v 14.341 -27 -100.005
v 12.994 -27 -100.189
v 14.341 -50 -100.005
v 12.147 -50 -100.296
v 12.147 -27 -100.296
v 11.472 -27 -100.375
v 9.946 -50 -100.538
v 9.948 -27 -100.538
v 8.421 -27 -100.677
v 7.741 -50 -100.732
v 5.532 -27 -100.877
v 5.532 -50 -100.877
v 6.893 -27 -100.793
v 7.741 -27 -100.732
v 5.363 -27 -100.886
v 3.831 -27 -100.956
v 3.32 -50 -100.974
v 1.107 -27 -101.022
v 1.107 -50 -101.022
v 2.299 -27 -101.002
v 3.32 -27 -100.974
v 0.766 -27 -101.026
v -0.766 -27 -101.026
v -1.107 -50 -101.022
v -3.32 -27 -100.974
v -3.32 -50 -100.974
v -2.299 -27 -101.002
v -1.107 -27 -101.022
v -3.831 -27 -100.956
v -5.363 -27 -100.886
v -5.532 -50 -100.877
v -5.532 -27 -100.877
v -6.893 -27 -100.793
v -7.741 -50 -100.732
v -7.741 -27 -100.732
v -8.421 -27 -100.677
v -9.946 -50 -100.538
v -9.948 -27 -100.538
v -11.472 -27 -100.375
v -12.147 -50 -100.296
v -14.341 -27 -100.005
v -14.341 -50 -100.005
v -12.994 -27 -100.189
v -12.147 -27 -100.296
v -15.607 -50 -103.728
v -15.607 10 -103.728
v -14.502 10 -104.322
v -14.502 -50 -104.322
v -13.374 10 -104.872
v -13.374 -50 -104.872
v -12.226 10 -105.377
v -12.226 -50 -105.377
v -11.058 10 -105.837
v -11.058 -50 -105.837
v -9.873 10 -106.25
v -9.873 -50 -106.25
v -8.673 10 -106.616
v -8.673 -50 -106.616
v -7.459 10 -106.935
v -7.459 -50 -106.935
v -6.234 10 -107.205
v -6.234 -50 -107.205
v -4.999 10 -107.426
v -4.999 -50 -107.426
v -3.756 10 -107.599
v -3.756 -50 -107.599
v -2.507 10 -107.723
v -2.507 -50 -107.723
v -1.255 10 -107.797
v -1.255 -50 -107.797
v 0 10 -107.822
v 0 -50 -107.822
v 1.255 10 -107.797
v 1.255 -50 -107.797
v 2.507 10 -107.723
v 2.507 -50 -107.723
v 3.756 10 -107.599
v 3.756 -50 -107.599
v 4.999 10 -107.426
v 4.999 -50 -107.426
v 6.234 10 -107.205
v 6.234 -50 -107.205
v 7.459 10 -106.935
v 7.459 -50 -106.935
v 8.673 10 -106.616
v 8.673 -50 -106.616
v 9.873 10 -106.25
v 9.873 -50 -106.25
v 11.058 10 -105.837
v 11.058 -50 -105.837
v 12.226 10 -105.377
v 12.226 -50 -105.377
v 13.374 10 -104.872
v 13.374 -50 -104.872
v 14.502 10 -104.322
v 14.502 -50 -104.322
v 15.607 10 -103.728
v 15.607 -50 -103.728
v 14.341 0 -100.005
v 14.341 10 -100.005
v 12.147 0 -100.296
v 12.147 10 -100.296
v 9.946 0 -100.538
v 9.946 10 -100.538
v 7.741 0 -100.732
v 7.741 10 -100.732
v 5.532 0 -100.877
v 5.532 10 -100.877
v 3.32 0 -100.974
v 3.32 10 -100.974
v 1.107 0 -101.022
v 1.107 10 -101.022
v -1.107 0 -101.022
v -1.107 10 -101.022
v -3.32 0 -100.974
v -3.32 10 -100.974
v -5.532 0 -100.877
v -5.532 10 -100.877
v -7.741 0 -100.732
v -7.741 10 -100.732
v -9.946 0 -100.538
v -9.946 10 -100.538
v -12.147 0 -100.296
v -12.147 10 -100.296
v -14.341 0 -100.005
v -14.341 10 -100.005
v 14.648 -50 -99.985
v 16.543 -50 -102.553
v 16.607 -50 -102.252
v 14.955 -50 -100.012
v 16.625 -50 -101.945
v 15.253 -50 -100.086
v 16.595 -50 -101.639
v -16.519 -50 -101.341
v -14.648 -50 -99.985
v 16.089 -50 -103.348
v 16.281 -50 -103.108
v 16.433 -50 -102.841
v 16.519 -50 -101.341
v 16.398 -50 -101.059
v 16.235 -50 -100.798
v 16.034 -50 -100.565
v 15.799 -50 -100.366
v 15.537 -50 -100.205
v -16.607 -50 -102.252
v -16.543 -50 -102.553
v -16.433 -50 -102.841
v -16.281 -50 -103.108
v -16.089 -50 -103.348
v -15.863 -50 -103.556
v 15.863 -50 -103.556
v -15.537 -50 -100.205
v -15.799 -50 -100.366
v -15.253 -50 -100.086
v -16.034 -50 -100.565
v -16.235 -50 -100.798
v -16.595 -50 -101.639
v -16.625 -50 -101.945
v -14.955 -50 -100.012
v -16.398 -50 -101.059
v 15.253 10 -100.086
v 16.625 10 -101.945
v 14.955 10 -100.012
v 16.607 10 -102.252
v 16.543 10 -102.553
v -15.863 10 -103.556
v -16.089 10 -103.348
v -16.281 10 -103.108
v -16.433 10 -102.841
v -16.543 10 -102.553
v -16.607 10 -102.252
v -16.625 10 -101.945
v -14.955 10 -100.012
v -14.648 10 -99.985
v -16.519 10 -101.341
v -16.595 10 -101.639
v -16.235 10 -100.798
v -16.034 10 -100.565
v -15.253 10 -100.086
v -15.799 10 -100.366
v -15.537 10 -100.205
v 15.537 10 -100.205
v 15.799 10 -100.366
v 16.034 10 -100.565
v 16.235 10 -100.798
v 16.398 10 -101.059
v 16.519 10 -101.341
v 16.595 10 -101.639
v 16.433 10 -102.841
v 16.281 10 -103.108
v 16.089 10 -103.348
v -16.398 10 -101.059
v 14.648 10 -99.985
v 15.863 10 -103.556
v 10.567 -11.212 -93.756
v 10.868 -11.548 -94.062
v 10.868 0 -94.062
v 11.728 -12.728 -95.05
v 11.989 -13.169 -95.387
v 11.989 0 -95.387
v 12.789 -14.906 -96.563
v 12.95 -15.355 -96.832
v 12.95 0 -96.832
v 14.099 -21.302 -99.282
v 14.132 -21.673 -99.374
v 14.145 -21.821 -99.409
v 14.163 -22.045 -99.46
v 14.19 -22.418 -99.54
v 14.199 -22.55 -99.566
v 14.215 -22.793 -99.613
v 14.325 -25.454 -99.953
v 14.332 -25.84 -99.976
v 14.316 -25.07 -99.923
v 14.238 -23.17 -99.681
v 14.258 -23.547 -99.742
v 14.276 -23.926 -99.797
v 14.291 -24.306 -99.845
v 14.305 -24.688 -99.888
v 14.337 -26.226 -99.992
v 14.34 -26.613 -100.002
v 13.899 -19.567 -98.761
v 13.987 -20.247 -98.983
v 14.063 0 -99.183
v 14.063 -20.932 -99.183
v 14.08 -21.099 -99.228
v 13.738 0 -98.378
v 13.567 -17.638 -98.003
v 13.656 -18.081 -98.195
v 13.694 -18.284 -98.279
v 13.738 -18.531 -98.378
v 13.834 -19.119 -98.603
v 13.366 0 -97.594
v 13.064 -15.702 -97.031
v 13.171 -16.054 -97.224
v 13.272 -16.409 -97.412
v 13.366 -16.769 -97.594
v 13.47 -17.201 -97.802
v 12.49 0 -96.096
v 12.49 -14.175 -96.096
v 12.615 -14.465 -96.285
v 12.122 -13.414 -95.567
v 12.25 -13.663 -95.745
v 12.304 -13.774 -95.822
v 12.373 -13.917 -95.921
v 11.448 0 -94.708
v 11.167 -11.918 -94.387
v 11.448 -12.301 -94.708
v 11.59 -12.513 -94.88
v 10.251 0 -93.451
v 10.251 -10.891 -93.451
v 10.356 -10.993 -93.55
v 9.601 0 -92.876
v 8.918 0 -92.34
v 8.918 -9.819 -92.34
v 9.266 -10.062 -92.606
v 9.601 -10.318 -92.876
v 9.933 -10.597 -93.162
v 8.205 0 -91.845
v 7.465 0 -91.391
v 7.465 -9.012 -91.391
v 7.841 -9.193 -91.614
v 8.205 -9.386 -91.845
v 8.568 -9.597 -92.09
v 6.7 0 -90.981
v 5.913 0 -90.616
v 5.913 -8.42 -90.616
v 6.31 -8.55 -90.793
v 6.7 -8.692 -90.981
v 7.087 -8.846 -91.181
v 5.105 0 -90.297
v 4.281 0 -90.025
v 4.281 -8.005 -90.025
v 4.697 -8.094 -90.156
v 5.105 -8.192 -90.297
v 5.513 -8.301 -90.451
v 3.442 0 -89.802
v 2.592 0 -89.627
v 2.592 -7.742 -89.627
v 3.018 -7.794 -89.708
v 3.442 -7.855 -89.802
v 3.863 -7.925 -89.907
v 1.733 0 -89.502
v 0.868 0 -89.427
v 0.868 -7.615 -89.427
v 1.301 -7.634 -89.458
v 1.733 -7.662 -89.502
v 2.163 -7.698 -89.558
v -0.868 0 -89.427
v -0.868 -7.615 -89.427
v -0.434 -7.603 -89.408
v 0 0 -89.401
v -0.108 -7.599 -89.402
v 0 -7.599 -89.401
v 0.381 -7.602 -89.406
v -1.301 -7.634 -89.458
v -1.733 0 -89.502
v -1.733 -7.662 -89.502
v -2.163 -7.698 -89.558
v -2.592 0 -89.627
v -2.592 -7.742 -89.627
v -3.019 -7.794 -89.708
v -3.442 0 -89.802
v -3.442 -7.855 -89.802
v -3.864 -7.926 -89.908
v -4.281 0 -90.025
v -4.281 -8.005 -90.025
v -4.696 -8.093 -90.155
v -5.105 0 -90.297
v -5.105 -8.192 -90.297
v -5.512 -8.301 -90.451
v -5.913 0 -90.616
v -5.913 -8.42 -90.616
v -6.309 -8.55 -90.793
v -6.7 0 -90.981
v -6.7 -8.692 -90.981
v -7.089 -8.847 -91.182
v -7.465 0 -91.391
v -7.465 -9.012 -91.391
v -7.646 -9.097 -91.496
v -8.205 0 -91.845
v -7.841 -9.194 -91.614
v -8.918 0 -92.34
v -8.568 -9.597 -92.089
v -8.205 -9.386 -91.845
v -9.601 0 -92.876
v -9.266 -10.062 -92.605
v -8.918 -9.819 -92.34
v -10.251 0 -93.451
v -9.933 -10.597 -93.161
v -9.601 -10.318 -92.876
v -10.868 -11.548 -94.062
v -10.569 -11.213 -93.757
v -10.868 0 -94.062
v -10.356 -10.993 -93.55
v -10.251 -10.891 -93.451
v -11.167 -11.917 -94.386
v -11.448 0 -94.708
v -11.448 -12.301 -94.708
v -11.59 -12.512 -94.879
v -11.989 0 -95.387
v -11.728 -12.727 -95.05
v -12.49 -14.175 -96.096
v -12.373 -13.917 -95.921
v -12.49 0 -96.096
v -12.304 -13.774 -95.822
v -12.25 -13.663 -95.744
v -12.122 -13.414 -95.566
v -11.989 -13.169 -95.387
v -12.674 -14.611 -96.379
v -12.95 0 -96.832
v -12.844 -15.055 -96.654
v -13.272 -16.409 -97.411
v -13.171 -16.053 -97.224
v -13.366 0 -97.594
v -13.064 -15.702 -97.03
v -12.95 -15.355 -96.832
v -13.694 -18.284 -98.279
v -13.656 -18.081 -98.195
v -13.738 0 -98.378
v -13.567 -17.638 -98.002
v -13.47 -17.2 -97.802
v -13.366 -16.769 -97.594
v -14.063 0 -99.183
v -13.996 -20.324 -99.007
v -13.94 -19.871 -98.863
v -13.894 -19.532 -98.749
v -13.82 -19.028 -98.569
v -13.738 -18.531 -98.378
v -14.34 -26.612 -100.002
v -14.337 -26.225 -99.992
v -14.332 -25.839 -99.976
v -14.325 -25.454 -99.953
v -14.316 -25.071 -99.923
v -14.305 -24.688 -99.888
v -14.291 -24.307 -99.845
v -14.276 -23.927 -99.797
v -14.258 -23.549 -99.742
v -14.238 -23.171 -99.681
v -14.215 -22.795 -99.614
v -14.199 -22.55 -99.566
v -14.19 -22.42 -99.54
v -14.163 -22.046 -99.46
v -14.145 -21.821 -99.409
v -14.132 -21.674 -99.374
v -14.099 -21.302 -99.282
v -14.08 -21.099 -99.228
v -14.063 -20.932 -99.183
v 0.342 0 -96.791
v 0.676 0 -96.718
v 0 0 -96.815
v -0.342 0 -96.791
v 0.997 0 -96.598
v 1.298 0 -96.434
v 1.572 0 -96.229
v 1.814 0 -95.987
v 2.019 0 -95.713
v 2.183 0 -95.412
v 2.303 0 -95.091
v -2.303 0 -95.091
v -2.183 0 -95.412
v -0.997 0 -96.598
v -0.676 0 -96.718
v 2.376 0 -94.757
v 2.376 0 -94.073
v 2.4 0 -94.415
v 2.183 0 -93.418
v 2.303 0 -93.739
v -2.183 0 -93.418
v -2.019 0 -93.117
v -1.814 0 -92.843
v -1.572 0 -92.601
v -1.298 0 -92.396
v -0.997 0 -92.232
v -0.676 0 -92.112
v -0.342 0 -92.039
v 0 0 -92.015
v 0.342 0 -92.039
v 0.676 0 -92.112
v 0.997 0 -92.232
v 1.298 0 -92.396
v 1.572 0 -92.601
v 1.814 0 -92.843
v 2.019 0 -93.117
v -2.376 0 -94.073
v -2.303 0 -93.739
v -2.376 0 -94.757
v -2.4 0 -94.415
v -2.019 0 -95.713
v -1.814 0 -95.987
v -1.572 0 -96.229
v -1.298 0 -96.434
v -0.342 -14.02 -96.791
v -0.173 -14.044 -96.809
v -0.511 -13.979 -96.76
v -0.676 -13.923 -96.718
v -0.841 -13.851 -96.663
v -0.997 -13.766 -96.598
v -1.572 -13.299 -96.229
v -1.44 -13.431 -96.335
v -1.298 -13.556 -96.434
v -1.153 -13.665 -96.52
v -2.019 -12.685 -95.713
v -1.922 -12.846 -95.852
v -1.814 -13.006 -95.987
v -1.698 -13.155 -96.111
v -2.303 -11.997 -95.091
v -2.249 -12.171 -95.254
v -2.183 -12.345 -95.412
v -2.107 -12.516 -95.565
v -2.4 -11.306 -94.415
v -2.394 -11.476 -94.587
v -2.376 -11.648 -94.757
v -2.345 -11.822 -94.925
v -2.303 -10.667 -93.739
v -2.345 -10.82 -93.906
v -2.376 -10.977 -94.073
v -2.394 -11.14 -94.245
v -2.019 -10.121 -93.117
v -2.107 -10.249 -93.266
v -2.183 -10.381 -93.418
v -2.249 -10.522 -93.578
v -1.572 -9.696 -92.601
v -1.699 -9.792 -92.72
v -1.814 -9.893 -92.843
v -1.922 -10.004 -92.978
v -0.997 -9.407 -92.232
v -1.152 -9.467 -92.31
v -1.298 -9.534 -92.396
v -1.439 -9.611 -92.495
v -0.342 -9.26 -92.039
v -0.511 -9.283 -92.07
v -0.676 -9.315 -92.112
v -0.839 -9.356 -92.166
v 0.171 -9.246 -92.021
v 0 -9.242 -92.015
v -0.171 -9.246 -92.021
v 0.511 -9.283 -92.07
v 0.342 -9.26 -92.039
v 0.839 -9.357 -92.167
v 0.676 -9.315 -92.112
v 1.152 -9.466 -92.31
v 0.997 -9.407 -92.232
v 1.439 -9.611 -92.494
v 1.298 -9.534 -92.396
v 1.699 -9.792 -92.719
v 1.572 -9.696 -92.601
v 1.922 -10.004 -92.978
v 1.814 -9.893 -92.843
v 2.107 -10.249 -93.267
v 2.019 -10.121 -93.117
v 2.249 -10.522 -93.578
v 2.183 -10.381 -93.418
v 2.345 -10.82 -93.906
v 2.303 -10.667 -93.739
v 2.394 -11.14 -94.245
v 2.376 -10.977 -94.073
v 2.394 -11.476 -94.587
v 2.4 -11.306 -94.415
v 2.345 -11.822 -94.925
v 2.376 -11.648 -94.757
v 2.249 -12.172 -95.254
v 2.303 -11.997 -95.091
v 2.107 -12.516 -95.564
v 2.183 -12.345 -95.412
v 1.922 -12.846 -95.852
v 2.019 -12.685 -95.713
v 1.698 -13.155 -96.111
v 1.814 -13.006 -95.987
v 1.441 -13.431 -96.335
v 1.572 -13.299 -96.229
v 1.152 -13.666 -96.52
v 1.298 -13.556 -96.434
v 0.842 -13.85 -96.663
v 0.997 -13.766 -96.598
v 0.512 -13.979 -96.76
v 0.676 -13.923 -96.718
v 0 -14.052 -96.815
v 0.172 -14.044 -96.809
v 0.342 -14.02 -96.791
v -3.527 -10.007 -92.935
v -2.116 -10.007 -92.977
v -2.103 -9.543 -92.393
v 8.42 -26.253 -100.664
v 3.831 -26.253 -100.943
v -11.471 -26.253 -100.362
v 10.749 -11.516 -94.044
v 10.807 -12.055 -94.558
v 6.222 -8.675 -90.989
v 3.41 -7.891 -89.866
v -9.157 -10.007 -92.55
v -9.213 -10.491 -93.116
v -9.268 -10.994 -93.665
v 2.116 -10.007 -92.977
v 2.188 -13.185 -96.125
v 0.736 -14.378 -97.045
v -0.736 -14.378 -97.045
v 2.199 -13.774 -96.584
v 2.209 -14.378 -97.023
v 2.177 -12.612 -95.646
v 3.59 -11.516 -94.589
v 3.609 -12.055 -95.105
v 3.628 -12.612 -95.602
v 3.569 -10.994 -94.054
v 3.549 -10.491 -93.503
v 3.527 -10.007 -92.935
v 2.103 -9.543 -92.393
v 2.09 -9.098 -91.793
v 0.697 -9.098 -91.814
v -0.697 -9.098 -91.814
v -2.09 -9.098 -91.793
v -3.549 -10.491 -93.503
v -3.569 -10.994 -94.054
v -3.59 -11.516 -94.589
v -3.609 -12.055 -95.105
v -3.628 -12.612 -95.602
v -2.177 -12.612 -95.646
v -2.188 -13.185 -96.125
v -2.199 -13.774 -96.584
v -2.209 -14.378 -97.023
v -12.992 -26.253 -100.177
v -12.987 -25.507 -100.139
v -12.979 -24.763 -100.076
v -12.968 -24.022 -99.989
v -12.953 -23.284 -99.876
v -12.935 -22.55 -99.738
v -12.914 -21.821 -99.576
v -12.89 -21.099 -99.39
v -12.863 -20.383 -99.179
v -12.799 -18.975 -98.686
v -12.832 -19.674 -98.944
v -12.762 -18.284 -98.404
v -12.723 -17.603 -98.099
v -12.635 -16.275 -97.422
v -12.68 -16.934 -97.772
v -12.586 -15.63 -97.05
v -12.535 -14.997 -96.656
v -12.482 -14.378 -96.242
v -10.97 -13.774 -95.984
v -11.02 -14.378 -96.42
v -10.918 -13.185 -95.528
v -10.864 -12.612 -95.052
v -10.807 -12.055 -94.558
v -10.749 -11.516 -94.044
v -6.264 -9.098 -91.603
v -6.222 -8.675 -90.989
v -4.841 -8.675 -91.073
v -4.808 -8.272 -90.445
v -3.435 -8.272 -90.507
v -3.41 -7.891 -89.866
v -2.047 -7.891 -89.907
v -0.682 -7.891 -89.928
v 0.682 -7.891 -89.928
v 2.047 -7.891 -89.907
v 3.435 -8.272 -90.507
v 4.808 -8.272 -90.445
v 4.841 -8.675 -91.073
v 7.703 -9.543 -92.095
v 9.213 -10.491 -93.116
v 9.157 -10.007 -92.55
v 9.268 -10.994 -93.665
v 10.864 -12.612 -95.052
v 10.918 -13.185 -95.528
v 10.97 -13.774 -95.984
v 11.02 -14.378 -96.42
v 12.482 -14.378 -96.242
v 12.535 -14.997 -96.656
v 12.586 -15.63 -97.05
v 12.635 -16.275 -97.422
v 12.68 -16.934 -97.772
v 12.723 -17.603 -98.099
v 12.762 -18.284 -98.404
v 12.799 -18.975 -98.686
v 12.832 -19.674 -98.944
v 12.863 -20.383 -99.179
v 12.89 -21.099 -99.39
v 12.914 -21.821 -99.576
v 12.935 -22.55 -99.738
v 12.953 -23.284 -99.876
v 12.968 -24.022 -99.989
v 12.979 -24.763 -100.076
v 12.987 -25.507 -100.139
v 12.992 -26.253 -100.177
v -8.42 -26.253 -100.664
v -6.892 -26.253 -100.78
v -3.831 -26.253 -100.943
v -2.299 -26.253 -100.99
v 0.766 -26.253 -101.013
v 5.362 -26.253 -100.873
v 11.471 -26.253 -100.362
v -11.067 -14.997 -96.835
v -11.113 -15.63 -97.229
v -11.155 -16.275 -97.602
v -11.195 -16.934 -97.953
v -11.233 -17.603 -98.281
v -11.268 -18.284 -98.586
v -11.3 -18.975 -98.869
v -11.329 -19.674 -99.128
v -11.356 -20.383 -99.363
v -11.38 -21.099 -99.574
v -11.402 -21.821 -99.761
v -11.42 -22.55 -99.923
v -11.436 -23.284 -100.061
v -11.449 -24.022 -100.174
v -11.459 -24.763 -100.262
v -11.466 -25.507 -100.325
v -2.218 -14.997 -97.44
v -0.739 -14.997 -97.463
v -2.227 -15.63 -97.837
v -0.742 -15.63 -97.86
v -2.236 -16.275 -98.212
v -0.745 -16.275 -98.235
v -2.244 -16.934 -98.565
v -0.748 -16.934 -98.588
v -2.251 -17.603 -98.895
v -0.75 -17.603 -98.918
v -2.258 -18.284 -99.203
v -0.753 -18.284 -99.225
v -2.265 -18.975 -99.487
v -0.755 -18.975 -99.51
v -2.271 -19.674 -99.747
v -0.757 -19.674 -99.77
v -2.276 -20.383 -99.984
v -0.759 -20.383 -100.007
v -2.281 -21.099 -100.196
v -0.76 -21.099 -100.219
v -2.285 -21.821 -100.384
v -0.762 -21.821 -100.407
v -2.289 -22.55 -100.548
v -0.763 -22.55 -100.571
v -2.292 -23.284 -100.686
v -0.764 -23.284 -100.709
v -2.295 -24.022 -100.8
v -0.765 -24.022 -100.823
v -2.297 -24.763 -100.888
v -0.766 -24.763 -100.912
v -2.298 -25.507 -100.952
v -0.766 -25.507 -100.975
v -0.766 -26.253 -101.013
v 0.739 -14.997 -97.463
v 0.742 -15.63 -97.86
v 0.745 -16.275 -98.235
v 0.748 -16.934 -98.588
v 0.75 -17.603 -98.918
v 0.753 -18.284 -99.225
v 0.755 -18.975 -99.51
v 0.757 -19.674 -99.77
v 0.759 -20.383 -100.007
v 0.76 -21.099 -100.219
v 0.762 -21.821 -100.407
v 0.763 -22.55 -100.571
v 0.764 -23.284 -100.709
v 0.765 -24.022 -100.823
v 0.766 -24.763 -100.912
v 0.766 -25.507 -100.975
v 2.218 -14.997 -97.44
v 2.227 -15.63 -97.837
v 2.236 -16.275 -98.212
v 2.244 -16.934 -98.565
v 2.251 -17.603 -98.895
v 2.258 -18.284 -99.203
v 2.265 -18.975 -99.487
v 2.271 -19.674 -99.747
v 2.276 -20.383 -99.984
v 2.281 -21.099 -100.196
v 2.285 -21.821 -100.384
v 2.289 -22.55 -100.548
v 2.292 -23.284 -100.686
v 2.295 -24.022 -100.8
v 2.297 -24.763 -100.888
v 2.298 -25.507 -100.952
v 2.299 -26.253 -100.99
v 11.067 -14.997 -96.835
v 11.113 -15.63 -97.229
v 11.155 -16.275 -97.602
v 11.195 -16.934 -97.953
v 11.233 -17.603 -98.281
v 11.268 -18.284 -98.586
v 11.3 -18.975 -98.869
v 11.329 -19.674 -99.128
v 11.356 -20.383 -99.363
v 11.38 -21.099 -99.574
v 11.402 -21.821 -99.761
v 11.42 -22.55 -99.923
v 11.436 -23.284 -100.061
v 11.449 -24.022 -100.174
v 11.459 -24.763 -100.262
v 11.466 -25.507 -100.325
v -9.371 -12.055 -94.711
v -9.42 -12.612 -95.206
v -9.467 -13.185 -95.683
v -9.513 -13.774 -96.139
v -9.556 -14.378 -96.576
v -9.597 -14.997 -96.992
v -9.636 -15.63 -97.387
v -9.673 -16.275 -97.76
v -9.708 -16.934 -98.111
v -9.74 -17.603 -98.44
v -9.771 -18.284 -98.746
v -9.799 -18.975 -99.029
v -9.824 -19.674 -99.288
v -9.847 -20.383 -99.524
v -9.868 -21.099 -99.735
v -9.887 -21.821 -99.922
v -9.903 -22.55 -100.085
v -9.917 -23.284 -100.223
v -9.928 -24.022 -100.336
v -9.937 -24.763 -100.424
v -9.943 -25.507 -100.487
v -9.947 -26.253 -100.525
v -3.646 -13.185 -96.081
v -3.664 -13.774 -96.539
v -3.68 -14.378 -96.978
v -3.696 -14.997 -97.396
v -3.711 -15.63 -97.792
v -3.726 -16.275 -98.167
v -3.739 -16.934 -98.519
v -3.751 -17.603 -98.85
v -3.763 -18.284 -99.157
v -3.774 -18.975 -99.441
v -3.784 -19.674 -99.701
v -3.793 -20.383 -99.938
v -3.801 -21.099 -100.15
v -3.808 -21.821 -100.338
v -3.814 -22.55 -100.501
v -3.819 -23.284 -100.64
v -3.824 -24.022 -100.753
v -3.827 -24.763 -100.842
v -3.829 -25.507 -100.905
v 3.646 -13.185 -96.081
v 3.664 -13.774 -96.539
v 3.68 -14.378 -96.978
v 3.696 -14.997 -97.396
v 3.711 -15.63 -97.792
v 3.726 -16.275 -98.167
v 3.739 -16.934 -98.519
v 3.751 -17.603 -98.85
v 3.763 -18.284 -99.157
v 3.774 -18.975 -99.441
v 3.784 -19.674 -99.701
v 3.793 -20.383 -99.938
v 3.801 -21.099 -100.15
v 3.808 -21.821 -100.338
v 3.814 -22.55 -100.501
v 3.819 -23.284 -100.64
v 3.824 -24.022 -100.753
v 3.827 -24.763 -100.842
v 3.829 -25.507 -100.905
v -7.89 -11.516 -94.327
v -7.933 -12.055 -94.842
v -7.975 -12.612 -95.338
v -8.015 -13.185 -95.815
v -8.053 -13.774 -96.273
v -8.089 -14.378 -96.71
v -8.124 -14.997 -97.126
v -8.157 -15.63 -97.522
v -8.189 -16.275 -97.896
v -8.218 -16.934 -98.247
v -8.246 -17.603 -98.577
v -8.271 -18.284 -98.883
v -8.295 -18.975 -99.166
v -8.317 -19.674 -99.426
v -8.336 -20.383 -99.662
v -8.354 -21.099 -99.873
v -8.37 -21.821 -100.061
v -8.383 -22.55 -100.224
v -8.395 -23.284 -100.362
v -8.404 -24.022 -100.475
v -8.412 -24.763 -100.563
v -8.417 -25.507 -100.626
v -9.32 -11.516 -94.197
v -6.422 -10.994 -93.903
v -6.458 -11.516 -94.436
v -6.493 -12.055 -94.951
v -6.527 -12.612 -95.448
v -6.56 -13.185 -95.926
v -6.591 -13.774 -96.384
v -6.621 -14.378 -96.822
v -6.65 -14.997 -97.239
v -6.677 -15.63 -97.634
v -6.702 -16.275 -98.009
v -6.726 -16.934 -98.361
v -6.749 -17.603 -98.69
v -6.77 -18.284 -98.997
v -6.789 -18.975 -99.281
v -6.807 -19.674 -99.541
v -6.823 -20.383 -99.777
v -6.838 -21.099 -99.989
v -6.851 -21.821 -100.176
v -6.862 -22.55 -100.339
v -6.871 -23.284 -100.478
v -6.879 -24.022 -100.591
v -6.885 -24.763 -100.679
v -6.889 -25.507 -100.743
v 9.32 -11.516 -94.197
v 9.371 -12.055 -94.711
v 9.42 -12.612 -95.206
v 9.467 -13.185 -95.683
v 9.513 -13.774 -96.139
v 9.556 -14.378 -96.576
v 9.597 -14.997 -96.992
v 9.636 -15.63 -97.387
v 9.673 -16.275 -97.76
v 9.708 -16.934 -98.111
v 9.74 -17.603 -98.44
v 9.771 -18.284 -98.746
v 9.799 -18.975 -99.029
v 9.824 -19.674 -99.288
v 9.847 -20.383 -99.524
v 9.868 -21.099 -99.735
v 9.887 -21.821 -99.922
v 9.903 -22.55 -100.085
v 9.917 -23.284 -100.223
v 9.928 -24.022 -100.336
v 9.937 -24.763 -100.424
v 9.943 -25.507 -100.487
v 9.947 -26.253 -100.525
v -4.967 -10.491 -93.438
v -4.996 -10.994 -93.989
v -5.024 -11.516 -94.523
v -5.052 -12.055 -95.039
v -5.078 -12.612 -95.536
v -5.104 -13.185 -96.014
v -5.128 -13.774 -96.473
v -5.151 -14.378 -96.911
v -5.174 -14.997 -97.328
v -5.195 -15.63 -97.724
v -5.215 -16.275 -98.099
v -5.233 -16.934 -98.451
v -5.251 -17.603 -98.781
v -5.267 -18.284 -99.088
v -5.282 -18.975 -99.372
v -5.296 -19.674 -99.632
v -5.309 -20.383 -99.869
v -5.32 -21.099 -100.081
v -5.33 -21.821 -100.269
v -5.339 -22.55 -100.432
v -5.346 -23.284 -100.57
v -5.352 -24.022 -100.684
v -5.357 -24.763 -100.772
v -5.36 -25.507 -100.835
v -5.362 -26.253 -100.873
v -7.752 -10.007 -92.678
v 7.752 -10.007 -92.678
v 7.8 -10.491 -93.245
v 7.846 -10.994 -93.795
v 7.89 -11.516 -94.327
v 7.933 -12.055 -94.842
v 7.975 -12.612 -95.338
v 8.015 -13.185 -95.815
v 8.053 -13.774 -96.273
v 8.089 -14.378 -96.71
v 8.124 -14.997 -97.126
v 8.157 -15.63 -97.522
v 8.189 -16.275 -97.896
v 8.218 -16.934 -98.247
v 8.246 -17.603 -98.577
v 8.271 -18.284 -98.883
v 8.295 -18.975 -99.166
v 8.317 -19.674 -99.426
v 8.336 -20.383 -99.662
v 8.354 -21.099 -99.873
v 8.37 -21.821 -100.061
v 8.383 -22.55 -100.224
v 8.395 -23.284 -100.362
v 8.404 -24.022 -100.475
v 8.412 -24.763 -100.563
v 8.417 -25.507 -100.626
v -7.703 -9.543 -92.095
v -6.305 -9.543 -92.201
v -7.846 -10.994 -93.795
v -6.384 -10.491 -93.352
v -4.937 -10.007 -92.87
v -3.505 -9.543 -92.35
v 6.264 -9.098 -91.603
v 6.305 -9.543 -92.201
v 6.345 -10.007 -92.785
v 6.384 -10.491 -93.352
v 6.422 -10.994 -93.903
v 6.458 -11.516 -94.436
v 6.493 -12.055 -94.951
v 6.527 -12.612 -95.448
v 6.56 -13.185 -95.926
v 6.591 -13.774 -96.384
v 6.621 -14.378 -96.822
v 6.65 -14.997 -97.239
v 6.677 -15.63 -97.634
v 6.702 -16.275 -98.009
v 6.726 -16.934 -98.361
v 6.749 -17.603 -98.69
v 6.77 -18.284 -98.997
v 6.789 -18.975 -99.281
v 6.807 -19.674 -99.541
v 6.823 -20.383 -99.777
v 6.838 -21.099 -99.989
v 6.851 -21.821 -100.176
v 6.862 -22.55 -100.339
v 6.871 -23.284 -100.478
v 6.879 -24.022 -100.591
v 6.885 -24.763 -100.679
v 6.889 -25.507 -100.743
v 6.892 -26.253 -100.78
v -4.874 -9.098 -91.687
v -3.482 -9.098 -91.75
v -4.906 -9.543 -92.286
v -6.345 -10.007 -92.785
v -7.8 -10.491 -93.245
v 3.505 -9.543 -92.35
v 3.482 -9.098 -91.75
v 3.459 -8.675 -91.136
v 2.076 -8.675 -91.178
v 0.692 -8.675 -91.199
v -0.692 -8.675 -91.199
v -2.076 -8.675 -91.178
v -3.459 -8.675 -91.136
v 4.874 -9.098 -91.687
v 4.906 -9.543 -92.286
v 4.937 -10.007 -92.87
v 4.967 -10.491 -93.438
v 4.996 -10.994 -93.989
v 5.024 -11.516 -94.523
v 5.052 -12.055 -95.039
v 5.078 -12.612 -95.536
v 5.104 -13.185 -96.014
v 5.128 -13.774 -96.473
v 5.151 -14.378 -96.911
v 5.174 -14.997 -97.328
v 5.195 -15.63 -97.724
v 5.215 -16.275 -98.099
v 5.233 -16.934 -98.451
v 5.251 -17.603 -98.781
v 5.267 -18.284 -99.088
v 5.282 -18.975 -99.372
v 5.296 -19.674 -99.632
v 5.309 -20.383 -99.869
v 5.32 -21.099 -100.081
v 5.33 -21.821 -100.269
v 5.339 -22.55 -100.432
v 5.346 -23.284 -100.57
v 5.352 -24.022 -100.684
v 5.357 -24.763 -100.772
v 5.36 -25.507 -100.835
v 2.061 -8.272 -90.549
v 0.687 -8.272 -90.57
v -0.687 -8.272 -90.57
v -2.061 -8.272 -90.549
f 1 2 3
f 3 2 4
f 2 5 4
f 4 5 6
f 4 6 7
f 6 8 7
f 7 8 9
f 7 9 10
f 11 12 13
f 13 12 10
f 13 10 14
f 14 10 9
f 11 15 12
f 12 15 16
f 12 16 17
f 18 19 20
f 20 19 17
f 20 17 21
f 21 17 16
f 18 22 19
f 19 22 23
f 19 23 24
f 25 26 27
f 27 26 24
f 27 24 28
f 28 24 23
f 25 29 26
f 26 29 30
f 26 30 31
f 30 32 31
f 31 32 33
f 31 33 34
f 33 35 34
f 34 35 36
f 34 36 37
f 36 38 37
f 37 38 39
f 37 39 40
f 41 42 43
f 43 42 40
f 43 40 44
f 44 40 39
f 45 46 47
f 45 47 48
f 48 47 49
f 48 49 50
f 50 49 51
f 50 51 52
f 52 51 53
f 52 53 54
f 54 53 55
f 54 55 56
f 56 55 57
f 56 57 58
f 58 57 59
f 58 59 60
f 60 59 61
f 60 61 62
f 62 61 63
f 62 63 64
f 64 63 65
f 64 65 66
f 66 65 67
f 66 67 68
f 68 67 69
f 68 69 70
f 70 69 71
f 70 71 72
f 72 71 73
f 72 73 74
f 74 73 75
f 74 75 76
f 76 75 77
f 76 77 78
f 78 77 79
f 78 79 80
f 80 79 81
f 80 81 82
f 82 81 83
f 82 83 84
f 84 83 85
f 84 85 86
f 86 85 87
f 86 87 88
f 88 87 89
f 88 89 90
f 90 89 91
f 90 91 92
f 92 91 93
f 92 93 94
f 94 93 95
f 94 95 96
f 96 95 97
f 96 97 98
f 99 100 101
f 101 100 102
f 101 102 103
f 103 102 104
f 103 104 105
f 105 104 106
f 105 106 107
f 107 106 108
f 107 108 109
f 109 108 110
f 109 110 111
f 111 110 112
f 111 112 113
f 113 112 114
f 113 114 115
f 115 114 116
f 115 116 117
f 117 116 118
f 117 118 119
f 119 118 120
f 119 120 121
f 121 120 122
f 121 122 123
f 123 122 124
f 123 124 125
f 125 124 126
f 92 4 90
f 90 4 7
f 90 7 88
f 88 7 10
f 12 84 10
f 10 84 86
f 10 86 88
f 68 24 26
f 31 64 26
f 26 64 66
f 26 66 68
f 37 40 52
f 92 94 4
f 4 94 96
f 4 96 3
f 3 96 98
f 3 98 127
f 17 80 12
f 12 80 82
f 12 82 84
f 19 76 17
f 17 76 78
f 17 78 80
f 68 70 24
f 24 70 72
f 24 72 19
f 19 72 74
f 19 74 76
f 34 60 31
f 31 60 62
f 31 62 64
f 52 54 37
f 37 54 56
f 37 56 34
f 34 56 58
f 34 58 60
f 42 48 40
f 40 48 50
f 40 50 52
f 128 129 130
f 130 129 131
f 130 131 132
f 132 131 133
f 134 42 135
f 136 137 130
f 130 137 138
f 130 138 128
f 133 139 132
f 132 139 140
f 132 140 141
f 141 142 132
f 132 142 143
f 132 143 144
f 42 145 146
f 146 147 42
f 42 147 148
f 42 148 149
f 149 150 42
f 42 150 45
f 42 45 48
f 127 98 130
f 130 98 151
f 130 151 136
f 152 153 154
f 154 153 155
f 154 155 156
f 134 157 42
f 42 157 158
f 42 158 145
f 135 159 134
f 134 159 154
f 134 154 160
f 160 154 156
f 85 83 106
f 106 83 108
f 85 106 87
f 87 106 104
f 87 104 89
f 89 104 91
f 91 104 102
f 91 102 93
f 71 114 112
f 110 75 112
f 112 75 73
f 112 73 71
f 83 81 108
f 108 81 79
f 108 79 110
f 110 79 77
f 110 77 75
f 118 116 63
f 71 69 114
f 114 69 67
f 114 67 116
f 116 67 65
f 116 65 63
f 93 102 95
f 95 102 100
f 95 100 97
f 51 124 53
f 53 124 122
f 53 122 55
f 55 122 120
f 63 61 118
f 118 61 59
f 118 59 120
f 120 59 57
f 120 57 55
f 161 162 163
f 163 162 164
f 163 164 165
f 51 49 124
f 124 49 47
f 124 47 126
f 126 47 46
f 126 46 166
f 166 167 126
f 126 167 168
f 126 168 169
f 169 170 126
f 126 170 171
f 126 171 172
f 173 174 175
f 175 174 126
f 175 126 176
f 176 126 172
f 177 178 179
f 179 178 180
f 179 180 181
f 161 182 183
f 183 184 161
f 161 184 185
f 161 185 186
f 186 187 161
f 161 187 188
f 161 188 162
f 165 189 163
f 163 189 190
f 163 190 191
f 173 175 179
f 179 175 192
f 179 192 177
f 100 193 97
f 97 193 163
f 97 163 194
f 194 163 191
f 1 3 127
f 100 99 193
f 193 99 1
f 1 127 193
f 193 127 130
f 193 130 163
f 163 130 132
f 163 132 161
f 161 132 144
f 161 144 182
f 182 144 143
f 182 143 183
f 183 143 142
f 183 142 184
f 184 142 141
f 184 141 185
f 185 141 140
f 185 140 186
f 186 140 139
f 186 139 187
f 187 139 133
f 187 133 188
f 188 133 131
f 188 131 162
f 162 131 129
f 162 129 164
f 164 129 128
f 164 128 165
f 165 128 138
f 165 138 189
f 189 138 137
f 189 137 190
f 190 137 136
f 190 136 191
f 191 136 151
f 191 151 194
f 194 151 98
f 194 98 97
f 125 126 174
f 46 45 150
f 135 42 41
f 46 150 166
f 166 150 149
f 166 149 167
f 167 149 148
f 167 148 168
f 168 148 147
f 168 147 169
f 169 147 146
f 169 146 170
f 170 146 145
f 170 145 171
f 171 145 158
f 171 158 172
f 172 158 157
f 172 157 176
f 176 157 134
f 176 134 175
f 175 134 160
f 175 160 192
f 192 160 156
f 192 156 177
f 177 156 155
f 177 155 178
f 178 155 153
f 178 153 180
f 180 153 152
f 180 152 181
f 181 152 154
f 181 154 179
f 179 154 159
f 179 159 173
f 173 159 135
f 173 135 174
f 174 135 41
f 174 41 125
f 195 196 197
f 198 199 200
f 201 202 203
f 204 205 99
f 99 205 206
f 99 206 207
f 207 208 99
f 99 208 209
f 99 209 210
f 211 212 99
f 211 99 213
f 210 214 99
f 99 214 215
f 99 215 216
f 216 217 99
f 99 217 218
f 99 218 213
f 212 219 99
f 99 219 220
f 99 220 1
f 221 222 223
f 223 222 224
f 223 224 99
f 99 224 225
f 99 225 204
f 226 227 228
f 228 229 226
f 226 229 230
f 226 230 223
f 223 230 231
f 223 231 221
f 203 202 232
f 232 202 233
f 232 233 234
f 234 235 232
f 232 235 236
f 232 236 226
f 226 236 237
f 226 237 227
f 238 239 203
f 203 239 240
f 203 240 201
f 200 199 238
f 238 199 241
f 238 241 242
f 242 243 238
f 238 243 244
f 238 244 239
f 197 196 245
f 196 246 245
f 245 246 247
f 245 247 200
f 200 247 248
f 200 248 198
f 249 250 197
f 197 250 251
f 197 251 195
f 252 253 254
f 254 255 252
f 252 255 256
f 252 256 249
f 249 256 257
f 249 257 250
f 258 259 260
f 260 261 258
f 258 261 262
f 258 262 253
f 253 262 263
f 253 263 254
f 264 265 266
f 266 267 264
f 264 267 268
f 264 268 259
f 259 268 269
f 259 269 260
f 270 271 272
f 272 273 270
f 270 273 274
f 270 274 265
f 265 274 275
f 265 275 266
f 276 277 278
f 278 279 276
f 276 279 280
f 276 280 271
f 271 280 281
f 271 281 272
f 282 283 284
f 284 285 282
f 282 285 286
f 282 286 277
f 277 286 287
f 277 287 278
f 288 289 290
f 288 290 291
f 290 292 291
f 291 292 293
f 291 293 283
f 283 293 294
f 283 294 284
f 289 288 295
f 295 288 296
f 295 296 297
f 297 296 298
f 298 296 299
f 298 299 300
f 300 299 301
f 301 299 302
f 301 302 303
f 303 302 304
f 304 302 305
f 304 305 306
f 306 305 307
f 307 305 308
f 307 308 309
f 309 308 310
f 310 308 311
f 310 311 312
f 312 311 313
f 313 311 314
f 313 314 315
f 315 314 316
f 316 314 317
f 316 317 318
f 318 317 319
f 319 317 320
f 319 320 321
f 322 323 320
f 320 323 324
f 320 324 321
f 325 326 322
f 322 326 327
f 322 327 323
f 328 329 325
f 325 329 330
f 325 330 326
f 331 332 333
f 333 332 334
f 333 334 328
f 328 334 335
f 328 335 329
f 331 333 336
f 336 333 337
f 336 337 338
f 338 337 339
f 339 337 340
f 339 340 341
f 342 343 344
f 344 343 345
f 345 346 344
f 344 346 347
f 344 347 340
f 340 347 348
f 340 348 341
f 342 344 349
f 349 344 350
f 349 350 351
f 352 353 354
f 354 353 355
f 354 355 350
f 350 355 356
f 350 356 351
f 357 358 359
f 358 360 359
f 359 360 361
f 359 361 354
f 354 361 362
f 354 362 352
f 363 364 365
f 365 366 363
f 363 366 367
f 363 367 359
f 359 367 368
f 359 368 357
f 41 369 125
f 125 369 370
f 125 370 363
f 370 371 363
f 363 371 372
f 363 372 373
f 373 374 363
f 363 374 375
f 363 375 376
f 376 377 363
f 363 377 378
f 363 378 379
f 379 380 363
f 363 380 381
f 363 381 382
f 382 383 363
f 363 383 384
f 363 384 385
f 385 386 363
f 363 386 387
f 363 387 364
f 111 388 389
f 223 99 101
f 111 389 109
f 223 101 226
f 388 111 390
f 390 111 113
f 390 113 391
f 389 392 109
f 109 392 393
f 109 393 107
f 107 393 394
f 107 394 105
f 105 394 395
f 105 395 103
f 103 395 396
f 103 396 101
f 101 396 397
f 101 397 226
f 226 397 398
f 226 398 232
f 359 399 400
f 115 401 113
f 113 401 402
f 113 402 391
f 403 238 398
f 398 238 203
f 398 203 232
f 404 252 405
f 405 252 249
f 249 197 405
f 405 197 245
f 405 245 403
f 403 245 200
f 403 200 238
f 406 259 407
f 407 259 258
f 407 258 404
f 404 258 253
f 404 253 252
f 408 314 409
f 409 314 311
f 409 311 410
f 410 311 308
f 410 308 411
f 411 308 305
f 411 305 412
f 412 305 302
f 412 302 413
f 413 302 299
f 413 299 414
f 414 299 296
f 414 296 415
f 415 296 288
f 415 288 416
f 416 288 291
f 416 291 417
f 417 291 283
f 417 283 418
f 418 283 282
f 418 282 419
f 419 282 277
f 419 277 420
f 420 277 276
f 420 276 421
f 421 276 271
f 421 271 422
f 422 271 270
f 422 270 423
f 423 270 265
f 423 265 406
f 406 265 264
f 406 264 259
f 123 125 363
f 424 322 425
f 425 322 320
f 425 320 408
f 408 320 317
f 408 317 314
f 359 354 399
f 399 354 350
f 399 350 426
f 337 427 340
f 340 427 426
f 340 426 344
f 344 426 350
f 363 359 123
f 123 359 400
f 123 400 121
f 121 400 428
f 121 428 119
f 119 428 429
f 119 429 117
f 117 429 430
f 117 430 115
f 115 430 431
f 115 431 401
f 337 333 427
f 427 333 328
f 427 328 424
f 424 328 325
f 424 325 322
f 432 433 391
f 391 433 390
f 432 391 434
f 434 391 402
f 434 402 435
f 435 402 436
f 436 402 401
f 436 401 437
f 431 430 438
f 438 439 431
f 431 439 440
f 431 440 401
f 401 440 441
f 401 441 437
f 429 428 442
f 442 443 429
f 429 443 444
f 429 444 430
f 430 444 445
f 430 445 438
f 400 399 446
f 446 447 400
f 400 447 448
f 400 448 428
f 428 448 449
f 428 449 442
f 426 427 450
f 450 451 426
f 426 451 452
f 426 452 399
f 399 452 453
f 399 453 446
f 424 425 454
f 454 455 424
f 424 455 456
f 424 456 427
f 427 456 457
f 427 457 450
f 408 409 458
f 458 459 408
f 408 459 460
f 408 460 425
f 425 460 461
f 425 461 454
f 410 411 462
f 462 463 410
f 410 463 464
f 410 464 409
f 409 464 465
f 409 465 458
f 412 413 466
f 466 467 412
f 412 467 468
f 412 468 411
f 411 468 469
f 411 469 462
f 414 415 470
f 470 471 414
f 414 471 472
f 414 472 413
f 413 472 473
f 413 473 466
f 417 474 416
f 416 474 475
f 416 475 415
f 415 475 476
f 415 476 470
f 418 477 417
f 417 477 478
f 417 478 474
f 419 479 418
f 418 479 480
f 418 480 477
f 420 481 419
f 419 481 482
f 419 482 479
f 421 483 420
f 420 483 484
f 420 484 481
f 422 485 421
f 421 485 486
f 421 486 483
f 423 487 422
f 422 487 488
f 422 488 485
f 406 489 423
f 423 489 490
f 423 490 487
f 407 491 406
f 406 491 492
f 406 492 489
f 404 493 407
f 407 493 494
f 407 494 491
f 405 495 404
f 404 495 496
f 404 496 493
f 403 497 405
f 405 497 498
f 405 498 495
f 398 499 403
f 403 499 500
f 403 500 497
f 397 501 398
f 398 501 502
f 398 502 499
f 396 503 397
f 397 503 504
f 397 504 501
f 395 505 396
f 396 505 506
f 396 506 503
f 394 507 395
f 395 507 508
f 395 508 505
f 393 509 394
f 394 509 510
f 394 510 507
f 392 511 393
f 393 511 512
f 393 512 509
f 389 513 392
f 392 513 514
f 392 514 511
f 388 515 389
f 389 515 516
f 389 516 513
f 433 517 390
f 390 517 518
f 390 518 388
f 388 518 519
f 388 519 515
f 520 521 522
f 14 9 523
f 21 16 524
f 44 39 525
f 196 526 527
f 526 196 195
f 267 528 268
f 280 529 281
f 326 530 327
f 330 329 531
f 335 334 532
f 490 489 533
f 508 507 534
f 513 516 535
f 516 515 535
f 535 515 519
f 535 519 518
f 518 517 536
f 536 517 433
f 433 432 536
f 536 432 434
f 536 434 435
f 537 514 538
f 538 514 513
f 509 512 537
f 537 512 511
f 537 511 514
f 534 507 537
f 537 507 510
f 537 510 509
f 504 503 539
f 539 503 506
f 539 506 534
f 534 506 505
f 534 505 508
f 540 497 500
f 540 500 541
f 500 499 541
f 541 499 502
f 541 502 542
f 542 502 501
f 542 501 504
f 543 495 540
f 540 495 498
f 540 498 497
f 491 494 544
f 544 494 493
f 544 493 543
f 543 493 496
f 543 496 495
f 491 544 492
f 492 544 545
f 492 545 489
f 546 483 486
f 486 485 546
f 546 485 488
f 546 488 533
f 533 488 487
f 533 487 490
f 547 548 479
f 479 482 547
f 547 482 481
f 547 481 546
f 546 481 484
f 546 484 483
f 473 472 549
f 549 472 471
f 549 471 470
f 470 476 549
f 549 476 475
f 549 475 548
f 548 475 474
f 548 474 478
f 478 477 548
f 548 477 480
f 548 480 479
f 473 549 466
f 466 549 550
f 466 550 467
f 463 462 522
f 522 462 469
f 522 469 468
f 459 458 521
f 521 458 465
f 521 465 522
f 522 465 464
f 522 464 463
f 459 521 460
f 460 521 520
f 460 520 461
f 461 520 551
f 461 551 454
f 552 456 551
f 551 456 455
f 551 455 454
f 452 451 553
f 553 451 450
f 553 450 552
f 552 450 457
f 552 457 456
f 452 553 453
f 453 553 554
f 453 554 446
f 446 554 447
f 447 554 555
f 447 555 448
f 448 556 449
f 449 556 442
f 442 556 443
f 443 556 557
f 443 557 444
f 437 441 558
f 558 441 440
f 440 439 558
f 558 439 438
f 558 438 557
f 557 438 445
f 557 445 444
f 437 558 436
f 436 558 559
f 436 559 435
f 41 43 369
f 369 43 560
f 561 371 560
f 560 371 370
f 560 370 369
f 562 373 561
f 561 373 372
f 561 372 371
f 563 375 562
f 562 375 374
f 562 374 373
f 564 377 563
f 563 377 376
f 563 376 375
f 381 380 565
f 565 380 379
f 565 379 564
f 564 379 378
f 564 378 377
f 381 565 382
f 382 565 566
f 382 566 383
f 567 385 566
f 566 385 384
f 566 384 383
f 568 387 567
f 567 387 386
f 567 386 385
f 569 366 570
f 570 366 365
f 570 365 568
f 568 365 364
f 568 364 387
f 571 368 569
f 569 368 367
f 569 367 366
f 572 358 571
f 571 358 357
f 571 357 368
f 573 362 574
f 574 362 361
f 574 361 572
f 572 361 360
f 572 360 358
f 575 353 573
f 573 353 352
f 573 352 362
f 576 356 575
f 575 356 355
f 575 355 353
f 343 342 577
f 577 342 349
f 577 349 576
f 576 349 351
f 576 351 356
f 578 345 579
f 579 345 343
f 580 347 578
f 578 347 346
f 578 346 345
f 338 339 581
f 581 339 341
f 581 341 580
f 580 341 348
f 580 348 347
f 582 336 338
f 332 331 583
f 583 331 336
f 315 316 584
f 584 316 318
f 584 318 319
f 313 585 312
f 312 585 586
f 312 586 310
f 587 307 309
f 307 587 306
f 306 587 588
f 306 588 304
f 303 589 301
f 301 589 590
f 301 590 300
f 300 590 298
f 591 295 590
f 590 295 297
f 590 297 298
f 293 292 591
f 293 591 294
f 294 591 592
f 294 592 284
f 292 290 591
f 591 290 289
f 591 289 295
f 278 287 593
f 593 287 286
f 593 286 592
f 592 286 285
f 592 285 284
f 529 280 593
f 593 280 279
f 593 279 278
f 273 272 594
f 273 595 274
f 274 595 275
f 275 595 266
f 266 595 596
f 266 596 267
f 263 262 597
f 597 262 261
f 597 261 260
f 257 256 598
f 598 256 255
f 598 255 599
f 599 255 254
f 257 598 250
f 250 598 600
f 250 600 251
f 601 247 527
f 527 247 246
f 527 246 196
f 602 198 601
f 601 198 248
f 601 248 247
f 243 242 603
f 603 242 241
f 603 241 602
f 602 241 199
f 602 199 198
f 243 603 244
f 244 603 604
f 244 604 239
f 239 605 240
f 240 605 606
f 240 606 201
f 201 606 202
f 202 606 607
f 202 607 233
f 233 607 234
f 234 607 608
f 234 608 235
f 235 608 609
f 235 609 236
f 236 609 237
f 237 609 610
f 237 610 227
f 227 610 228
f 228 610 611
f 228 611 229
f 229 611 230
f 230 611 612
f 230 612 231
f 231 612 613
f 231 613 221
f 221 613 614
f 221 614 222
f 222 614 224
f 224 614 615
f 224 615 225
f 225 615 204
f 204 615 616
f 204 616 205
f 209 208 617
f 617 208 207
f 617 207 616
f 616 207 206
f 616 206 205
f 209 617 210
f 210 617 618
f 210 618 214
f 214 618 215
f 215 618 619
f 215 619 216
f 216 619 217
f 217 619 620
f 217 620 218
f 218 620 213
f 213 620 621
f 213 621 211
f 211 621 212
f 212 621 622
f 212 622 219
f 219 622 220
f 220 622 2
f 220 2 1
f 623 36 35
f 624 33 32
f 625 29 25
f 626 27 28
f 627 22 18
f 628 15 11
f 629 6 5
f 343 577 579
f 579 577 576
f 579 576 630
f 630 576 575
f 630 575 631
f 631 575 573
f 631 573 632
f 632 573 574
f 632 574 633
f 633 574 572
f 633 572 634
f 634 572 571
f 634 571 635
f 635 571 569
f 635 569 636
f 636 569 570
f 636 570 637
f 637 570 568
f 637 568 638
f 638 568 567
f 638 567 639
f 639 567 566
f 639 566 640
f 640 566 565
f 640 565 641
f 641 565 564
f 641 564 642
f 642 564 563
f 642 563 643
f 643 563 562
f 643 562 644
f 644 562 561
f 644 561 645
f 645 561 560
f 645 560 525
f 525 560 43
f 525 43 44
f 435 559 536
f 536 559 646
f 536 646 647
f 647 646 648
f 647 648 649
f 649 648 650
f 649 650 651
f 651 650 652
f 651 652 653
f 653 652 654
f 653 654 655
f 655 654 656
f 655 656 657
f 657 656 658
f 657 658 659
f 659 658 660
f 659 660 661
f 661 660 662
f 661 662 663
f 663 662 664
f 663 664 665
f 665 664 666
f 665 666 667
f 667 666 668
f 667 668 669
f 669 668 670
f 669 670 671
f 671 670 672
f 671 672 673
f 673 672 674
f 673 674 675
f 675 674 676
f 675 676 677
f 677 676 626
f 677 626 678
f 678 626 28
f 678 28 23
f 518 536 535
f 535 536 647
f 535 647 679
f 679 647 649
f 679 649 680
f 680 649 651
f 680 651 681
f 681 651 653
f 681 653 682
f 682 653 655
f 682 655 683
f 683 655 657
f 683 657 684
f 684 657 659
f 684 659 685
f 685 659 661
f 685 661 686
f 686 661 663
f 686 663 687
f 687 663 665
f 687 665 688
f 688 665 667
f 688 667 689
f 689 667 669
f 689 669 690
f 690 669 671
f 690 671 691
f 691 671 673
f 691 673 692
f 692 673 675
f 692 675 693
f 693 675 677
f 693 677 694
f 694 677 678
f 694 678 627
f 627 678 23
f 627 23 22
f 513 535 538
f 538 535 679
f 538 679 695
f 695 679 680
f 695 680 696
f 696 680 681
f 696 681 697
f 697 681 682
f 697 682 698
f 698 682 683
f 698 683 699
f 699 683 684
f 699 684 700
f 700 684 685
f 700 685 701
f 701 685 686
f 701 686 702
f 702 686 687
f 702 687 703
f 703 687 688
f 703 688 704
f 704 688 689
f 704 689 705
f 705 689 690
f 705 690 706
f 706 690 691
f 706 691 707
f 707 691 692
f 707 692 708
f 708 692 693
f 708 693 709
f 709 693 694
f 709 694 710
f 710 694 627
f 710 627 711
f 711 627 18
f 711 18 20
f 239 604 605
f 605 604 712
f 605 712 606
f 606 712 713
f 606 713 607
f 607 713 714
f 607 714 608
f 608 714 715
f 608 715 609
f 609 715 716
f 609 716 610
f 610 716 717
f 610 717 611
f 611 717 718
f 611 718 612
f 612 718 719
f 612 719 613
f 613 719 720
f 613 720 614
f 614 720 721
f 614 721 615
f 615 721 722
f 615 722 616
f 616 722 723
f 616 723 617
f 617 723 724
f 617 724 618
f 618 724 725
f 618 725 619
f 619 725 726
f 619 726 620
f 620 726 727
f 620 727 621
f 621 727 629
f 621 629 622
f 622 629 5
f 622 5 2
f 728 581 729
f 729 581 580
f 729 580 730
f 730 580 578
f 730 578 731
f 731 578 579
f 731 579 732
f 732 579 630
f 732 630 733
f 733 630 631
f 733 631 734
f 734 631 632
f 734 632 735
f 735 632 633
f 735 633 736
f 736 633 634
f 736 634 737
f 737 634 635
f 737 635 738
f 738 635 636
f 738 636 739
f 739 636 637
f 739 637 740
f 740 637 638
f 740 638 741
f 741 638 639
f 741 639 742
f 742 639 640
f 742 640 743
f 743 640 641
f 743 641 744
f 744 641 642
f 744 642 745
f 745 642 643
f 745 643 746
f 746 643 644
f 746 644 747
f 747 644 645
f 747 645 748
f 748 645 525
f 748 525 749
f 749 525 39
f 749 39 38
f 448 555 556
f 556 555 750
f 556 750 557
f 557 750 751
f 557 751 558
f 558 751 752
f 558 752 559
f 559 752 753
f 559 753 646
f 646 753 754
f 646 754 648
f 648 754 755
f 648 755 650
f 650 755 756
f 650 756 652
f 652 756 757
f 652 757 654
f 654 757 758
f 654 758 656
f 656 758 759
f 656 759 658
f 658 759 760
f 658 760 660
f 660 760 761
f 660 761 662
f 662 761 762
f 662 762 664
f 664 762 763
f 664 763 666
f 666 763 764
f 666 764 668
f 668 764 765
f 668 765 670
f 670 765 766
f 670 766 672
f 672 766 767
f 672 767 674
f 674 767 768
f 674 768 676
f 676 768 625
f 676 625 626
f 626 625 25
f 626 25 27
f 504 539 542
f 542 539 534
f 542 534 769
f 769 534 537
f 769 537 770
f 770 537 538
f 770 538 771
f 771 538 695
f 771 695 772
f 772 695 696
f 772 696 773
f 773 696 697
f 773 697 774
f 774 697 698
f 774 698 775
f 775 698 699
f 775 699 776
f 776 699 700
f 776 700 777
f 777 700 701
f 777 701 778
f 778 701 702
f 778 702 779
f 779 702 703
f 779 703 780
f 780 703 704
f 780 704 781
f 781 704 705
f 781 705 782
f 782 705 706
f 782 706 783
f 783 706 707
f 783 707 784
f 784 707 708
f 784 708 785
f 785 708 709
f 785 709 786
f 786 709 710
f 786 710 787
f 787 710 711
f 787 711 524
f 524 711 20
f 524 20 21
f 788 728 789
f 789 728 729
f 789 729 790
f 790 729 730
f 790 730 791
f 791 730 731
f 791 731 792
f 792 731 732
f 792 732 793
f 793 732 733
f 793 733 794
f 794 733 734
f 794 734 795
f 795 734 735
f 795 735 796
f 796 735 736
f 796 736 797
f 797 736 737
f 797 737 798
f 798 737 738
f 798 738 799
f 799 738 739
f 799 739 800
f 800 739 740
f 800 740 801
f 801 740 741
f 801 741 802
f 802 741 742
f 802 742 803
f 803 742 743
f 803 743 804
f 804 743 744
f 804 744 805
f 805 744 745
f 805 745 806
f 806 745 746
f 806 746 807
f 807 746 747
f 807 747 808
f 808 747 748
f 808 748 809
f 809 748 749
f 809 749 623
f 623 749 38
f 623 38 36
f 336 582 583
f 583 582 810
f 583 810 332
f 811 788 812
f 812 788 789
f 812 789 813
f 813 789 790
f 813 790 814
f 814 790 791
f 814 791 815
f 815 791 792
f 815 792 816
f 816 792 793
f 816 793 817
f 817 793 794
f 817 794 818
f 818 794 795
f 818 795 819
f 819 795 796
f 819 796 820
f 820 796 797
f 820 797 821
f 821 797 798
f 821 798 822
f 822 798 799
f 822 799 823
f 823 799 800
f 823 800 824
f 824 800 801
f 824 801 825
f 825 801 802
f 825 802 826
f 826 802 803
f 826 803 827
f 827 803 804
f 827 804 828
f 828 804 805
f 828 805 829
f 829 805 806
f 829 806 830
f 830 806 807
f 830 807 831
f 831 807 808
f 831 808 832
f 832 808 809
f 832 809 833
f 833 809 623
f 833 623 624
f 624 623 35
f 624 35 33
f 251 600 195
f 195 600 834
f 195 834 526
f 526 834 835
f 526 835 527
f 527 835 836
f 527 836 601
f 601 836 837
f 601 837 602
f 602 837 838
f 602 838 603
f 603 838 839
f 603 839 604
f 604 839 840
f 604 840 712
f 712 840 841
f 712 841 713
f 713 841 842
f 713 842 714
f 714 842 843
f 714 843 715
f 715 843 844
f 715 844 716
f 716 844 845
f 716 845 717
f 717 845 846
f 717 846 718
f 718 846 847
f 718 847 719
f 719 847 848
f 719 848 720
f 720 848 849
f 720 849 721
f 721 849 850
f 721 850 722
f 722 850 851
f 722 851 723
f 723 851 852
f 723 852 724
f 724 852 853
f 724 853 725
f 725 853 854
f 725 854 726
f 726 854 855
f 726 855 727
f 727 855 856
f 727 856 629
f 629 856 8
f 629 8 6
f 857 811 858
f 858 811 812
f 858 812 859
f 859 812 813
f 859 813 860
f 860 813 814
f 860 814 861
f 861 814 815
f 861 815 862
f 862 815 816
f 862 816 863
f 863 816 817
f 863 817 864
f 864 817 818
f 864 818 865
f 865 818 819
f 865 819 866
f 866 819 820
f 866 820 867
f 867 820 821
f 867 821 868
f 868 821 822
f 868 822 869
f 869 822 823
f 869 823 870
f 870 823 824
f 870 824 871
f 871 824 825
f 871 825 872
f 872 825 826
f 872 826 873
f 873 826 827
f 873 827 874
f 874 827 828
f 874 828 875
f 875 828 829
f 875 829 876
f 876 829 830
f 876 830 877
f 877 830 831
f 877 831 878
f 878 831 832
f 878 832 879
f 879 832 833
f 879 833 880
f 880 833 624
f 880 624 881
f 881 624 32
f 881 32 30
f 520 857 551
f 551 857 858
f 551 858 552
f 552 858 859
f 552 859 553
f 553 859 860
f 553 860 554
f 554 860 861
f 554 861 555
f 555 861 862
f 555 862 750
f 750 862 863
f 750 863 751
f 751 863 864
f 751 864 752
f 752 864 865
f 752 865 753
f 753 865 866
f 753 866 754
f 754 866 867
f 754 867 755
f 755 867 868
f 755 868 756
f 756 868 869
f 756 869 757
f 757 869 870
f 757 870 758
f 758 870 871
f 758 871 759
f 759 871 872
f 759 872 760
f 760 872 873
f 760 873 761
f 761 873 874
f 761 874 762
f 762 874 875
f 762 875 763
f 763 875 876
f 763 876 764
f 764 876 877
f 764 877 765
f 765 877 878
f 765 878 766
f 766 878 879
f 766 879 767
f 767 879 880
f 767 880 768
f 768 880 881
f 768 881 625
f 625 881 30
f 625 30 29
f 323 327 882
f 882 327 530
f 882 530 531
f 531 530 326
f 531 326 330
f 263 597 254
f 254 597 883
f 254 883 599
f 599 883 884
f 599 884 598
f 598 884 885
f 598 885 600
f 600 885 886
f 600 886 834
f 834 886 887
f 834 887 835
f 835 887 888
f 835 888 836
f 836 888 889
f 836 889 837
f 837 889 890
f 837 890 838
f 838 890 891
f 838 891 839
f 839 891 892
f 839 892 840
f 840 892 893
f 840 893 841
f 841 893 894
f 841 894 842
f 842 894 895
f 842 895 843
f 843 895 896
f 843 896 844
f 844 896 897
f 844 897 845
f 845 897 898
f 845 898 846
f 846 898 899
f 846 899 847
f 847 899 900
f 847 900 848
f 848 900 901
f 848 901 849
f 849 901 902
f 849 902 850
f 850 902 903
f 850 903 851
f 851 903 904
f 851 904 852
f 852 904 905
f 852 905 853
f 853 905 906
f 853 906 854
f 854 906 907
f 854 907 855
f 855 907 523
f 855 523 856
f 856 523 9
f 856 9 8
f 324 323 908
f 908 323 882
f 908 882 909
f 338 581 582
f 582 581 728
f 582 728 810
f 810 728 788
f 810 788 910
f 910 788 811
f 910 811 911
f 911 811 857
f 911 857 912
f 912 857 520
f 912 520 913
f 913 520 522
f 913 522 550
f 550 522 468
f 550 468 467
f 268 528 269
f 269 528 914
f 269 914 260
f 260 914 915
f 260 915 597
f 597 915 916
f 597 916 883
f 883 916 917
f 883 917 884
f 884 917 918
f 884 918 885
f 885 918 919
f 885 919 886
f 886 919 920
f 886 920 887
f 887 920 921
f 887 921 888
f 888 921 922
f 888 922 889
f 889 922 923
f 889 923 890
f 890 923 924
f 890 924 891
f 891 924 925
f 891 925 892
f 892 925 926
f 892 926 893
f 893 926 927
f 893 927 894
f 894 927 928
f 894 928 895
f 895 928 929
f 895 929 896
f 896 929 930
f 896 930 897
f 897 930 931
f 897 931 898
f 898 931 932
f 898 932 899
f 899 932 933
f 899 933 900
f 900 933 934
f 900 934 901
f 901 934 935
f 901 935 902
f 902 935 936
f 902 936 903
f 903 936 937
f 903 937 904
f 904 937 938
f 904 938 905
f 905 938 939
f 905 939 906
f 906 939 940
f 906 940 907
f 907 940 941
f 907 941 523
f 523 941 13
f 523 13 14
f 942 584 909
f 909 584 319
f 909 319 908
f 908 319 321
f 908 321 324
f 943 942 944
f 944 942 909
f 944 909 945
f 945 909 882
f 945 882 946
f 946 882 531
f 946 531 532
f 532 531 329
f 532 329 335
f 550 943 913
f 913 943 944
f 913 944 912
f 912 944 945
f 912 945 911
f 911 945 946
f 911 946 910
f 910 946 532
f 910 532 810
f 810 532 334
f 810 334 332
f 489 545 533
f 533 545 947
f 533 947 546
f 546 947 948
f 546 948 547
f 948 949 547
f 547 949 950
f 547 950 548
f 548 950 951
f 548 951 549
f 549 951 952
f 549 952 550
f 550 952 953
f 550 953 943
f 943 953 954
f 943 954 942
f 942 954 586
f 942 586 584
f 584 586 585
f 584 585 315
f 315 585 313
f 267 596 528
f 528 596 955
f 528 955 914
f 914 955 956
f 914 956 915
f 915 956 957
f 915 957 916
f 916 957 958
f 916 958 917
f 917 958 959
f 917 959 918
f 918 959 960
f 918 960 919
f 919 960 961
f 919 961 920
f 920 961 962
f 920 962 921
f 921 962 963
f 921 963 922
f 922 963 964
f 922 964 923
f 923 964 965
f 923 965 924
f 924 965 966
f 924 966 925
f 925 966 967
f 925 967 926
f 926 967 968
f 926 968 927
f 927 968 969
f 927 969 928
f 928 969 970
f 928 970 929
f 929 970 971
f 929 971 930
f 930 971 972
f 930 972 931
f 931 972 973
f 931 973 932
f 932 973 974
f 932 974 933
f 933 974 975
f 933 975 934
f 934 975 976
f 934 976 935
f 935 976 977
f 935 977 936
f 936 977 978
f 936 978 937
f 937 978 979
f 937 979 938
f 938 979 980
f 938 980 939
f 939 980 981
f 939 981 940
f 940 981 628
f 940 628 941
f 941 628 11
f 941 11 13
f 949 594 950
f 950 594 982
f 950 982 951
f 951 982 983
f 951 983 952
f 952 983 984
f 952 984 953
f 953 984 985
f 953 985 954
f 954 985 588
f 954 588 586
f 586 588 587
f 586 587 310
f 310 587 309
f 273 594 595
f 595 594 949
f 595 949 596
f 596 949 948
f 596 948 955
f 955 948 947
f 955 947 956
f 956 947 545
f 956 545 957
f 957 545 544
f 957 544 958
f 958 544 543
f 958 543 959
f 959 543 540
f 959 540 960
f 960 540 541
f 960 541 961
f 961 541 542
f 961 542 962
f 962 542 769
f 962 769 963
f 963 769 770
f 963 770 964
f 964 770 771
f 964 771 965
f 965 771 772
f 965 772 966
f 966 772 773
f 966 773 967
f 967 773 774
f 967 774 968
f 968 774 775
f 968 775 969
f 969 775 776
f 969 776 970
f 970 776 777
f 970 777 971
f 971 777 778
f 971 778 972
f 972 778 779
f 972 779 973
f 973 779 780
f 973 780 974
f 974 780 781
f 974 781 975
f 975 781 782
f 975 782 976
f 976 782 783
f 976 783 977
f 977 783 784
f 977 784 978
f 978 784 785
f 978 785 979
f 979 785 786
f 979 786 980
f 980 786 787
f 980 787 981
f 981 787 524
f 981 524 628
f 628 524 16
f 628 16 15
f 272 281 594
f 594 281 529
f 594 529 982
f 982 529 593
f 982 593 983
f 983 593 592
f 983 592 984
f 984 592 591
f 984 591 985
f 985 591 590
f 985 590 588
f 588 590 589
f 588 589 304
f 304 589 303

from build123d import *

# Parameters (mm, degrees)
BOSS_EXTRUDE1_DEPTH      = 10
BOSS_EXTRUDE1_DEPTH_BACK = 50
FILLET1_R                = 2
BOSS_EXTRUDE2_START      = -5
SKETCH3_R                = 2.4
BOSS_EXTRUDE2_DEPTH      = 5
FILLET2_R                = 22


with BuildPart() as part:
    # Sketch2 → Boss-Extrude1 (new, two sides: drawn at the far end of the back side and taken through both)
    with BuildSketch(Plane(origin=(0, 0, 0), x_dir=(1, 0, 0), z_dir=(0, 1, 0)).offset(-BOSS_EXTRUDE1_DEPTH_BACK)):
        with BuildLine():
            ThreePointArc((-22.5, 98.49115601), (0, 101.0285), (22.5, 98.49115601))
            ThreePointArc((22.5, 98.49115601), (0, 107.821909931), (-22.5, 98.49115601))
        make_face()
    extrude(amount=BOSS_EXTRUDE1_DEPTH + BOSS_EXTRUDE1_DEPTH_BACK)

    # Fillet1
    fillet1_edges = [part.edges().sort_by_distance(p)[0] for p in [
        (22.5, -20, -98.49115601),
        (-22.5, -20, -98.49115601),
    ]]
    fillet(fillet1_edges, radius=FILLET1_R)

    # Sketch3 → Boss-Extrude2 (add)
    with BuildSketch(Plane(origin=(0, 0, 0), x_dir=(1, 0, 0), z_dir=(0, 1, 0)).offset(BOSS_EXTRUDE2_START)):
        with BuildLine():
            ThreePointArc((14.341382747, 100.005412619), (0, 101.0285), (-14.341382747, 100.005412619))
            ThreePointArc((-14.341382747, 100.005412619), (0, 89.401404079), (14.341382747, 100.005412619))
        make_face()
        with Locations(Location((0, 94.415, 0), (0, 0, 270))):
            Circle(SKETCH3_R, mode=Mode.SUBTRACT)
    extrude(amount=BOSS_EXTRUDE2_DEPTH)

    # Fillet2
    # the kernel refuses this fillet: 22 mm, written as the material it adds along each edge
    with BuildSketch(Plane(origin=(0, -5, 0), x_dir=(0.6340991791841111, 0, -0.7732517254801548), z_dir=(0.7732517254801548, 0, 0.6340991791841111))) as fillet2_piece_1_section:
        with BuildLine():
            CenterArc((101.0285 - FILLET2_R, -FILLET2_R), FILLET2_R, 0, 90)
            Line((101.0285 - FILLET2_R, 0), (101.0285, 0))
            Line((101.0285, 0), (101.0285, -FILLET2_R))
        make_face()
    fillet2_piece_1 = revolve(axis=Axis((0, -5, 0), (0, 1, 0)), revolution_arc=78.706408495, mode=Mode.PRIVATE)
    fillet2_piece_1 = fillet2_piece_1 & Plane(origin=(0, -11.179397571, -104.401404079), x_dir=(-0.9560921831070281, 0, 0.29306609732556405), z_dir=(0, -1, 0)) * Cylinder(15, 405, mode=Mode.PRIVATE)
    fillet2_piece_1 = fillet2_piece_1 - Plane(origin=(0, -11.179397571, -94.415), x_dir=(0, 0, 1), z_dir=(0, -1, 0)) * Cylinder(2.4, 405, mode=Mode.PRIVATE)
    add(fillet2_piece_1)


solid = part.part
